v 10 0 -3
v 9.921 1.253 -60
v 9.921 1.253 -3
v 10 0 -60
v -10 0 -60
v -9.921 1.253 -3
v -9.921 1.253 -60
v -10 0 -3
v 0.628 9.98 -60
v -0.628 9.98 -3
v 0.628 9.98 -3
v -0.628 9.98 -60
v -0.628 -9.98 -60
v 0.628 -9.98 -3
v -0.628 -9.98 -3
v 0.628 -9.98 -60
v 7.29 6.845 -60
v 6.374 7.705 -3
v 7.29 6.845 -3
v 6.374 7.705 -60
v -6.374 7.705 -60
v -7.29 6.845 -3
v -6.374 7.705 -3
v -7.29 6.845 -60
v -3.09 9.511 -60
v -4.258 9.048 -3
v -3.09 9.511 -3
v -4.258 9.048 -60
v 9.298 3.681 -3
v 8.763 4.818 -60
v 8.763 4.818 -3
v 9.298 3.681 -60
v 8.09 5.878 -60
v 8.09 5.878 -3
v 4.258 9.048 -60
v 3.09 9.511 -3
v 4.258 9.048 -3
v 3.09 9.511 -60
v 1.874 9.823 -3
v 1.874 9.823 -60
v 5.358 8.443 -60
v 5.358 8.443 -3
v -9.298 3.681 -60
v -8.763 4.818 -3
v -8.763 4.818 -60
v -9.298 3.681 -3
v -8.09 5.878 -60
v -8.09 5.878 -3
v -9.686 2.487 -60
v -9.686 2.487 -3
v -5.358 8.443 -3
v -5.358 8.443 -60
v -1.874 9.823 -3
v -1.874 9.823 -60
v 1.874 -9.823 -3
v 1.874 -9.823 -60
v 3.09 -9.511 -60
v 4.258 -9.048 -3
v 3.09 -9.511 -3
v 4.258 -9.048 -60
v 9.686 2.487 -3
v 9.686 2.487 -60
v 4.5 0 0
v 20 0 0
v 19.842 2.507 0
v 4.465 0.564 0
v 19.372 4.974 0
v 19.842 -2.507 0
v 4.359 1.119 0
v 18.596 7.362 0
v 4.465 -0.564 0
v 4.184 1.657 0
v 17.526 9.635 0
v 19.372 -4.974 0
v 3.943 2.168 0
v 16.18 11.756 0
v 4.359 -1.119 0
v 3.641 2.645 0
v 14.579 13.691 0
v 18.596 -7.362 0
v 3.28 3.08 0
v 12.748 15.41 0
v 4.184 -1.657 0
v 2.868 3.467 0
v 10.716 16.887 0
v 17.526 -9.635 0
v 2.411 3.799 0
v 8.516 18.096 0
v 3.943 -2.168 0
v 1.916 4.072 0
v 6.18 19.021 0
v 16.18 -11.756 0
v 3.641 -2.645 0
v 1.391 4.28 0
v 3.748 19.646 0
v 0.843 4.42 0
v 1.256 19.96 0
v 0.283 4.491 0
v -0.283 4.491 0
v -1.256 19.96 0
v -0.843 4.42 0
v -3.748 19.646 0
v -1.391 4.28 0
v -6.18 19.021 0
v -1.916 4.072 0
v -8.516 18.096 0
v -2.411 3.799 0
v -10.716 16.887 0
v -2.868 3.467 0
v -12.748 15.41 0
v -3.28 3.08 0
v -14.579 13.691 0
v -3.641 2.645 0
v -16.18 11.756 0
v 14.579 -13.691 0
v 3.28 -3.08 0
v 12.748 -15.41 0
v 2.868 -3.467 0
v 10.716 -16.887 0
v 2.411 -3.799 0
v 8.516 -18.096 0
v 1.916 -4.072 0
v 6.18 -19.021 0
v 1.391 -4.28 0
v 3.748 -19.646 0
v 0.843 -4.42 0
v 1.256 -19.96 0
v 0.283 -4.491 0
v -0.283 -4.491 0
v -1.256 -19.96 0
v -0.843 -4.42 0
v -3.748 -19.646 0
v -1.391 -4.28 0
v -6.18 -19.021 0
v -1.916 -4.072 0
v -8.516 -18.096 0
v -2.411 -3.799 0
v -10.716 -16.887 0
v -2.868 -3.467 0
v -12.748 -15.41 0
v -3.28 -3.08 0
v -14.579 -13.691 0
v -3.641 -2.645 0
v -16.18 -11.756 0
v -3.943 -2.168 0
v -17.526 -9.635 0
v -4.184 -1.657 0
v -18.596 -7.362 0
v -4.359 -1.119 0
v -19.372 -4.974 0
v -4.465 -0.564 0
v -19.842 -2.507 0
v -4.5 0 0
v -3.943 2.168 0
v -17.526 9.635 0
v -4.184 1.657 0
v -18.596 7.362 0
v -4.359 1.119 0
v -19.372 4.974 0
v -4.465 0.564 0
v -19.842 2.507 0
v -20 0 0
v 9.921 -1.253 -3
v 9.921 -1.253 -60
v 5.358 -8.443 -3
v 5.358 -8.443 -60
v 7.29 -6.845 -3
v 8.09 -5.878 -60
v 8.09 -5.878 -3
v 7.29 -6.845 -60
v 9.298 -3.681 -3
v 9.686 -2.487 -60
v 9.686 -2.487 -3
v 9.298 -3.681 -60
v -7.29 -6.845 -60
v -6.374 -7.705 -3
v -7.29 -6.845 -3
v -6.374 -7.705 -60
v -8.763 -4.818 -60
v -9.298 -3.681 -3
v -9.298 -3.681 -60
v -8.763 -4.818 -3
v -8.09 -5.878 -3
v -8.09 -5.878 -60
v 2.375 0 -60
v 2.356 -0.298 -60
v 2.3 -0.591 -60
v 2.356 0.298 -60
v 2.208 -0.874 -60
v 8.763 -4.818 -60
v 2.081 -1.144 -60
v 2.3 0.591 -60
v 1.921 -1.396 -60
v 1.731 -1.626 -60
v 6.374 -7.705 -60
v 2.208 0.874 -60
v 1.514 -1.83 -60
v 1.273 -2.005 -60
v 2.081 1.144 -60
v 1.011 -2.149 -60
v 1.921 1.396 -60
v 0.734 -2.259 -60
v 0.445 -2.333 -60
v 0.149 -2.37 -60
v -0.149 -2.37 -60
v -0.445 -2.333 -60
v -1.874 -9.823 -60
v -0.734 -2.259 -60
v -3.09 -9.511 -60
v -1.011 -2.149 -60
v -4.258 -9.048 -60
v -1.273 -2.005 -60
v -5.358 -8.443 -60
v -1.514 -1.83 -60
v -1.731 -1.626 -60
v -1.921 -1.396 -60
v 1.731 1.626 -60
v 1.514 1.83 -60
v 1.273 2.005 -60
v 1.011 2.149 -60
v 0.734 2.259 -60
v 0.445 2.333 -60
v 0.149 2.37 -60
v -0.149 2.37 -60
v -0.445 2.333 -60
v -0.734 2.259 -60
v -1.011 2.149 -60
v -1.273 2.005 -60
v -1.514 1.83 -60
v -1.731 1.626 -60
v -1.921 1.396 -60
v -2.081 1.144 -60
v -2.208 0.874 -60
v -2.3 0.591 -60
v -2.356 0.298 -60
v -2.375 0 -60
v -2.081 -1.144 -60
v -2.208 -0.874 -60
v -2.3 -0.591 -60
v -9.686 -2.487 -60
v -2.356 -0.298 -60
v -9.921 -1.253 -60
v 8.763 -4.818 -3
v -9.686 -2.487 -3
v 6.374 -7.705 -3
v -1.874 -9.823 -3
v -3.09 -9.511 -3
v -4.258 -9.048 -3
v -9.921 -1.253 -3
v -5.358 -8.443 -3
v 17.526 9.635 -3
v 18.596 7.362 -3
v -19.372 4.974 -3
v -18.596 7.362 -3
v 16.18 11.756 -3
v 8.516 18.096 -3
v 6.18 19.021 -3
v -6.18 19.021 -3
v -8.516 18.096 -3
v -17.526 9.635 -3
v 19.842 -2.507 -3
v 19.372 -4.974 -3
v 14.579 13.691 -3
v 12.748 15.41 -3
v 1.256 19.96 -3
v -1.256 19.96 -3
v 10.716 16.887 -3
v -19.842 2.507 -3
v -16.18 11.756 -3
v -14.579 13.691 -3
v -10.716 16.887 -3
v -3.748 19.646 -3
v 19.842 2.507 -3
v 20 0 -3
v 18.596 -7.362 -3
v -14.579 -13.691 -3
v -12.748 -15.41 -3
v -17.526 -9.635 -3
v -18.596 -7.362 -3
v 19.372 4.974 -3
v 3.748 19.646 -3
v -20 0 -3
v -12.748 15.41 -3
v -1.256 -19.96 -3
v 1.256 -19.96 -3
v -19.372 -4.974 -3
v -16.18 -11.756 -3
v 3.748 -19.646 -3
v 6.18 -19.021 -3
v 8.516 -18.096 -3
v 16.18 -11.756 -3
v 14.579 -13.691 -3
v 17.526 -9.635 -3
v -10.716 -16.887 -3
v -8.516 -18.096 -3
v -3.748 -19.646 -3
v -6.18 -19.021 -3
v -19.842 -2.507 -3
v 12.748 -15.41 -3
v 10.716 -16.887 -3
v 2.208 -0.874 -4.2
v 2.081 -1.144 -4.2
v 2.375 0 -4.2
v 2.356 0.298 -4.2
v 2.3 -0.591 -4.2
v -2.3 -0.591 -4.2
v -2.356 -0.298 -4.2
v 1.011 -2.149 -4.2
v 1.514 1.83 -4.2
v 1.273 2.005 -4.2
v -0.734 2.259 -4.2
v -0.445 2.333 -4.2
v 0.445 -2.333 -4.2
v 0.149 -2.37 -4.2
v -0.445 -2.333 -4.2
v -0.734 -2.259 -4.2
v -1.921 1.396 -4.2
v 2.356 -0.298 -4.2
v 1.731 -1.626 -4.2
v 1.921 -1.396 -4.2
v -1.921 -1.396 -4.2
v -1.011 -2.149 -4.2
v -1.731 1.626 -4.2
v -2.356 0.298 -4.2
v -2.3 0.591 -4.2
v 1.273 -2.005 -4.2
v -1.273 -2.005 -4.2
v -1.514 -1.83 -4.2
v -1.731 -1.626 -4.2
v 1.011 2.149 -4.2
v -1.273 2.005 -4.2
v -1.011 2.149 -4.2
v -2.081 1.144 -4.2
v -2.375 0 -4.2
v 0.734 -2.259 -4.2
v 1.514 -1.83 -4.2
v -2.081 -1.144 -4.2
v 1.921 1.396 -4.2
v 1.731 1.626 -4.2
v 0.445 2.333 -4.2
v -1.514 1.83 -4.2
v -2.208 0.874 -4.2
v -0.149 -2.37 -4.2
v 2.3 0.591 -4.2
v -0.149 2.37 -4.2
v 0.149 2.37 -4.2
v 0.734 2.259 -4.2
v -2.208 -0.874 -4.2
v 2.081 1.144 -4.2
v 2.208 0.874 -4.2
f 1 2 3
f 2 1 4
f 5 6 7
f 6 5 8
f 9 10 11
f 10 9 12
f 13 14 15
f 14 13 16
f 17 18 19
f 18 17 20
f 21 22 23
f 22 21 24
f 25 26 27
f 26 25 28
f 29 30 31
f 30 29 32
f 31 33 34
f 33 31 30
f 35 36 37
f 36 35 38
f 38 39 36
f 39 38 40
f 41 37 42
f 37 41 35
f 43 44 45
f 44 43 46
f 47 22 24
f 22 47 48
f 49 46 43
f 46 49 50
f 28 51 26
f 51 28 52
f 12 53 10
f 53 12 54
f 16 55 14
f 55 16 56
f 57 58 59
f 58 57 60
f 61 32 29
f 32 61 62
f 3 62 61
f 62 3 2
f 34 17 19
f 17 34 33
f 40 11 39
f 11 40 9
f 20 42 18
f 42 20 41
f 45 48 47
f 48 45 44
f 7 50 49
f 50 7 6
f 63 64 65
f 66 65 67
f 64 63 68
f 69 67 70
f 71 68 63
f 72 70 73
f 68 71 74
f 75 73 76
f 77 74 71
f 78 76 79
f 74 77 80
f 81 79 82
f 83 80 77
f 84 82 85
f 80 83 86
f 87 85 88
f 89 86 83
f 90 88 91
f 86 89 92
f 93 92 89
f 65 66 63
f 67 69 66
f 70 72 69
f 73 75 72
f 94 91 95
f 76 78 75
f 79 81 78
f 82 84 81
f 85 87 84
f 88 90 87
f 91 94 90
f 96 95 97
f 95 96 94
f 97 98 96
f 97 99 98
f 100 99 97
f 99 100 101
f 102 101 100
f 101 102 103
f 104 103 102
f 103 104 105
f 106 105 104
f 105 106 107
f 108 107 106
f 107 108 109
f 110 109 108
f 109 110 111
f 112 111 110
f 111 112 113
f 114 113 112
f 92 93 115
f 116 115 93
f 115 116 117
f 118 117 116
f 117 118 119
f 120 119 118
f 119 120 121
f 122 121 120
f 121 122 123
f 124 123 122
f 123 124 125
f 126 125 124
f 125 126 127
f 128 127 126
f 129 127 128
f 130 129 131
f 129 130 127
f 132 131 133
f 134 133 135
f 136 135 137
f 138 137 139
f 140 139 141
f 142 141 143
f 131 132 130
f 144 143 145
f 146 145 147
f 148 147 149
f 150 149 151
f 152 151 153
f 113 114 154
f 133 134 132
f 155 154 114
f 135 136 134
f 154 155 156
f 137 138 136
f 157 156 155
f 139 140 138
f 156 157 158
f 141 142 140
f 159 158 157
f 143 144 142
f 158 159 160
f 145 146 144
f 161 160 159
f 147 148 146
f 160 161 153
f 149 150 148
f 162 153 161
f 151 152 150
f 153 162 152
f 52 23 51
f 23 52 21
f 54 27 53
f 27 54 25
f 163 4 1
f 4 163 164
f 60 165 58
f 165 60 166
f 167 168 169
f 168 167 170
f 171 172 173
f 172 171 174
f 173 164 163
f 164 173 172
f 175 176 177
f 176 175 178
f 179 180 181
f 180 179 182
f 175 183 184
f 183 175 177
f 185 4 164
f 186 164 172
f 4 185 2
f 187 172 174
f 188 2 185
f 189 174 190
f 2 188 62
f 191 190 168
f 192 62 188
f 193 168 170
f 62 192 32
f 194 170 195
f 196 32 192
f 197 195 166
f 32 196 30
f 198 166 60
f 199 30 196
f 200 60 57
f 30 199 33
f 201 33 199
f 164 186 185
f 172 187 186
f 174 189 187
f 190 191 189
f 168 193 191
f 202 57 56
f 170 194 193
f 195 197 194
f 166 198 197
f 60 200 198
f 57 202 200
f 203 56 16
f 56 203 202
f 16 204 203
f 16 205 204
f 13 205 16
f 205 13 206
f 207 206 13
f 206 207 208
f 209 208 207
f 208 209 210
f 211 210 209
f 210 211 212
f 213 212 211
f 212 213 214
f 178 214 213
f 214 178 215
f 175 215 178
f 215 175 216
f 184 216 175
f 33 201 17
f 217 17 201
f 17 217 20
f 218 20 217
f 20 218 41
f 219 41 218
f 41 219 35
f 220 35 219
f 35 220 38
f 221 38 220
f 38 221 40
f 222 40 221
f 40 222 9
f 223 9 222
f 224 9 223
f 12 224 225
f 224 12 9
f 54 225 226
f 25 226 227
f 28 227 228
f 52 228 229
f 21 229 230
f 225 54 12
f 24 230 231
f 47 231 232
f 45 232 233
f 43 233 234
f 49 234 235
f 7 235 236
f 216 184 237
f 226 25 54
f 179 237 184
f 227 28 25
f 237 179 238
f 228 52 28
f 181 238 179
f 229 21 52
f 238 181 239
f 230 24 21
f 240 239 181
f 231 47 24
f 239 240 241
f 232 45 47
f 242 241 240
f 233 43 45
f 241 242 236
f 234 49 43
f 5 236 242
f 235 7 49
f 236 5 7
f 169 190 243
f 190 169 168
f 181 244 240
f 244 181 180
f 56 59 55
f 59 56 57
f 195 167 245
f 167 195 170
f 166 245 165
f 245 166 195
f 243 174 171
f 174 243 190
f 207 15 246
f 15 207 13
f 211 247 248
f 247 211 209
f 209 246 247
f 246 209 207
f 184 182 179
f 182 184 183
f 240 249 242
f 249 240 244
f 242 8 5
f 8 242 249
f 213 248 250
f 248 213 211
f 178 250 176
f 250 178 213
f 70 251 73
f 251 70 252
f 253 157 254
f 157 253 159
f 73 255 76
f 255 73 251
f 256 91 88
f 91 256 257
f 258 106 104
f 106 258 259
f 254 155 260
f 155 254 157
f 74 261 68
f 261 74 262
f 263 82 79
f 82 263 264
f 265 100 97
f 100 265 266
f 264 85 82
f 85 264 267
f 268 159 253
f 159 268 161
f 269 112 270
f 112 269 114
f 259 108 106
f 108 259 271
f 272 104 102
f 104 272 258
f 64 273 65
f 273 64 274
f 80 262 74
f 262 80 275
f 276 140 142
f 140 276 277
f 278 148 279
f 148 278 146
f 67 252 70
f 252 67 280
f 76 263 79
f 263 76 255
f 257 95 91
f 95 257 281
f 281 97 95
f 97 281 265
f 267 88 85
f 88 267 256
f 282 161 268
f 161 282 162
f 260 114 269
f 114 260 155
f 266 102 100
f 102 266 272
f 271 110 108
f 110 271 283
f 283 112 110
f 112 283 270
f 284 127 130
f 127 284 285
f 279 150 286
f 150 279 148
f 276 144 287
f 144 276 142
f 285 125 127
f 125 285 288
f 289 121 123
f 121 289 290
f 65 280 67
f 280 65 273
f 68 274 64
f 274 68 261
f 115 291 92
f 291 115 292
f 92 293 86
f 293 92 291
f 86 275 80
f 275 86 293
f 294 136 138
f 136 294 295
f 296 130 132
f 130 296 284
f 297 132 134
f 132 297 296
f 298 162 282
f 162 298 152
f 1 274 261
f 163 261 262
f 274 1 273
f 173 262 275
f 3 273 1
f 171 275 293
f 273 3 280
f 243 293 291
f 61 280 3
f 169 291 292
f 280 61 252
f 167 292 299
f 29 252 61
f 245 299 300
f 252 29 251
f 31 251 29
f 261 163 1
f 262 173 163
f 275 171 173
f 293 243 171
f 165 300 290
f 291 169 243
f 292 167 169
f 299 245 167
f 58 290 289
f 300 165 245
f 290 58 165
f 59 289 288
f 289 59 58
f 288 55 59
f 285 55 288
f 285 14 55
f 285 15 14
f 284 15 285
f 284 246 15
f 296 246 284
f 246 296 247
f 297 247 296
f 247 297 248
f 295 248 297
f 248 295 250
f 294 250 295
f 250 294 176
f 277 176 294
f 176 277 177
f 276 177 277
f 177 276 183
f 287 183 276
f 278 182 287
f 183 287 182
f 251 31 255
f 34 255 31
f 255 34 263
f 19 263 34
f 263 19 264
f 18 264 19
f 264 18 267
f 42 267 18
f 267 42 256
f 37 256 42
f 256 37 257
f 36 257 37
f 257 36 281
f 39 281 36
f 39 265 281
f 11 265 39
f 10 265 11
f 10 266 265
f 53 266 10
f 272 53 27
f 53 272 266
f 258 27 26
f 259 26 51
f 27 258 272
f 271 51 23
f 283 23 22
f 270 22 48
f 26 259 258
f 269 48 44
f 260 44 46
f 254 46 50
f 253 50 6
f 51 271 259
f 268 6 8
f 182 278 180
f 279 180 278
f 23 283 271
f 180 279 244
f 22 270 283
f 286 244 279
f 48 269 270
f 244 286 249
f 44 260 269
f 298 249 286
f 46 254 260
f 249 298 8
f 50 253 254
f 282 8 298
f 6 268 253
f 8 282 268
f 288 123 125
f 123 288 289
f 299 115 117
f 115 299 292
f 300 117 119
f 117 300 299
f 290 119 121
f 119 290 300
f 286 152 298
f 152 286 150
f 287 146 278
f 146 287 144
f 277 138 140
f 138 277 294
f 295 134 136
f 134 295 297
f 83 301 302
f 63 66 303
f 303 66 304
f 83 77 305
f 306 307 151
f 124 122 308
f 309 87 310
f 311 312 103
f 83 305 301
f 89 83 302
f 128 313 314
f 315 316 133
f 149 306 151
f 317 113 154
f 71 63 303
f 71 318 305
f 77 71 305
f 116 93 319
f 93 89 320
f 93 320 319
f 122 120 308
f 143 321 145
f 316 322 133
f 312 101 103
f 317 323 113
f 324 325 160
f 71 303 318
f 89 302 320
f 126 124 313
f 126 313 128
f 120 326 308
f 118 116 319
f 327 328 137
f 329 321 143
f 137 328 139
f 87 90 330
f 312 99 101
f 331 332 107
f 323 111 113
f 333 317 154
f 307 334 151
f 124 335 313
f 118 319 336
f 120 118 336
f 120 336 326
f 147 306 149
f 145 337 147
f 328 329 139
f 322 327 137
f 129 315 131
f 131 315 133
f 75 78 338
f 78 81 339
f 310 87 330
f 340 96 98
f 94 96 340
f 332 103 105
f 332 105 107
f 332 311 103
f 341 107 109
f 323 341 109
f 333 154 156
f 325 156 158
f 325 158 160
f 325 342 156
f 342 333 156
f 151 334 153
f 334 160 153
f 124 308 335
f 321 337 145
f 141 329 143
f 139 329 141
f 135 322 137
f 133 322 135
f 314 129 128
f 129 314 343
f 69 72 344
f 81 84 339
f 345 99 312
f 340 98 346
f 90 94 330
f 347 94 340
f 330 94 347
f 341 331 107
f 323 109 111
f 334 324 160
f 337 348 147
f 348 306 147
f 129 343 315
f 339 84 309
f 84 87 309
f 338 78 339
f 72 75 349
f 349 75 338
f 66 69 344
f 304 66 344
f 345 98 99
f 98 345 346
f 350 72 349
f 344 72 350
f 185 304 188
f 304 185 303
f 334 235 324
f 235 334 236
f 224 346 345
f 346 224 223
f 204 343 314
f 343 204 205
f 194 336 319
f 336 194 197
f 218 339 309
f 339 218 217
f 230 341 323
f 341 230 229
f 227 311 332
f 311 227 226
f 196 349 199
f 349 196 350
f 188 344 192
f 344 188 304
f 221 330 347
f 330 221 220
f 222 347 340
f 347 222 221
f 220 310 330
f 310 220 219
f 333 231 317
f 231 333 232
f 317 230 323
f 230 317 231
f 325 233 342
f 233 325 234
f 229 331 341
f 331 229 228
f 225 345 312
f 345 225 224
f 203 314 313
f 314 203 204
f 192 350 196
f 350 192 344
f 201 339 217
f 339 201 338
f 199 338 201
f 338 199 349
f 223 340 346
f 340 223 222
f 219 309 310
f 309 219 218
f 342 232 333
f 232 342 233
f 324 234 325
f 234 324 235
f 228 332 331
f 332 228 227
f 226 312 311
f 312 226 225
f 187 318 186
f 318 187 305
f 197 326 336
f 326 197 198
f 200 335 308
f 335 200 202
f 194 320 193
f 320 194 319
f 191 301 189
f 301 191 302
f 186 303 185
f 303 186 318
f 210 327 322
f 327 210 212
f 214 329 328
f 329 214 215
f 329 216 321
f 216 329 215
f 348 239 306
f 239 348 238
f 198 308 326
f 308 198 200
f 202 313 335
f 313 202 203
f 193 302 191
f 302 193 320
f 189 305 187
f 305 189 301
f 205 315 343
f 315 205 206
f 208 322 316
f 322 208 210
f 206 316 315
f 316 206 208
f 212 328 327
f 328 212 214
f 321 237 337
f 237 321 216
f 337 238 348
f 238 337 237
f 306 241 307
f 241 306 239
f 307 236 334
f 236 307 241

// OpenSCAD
$fn = 50;


difference() {
	union() {
		translate(v = [0, 0, -60.0000000000]) {
			cylinder(h = 60, r = 10.0000000000);
		}
		translate(v = [0, 0, -3.0000000000]) {
			cylinder(h = 3, r = 20.0000000000);
		}
	}
	union() {
		translate(v = [0, 0, 0]) {
			rotate(a = [0, 0, 0]) {
				difference() {
					union() {
						#translate(v = [0, 0, -60.0000000000]) {
							cylinder(h = 60, r = 2.2500000000);
						}
						#translate(v = [0, 0, -4.2000000000]) {
							cylinder(h = 4.2000000000, r = 10.0000000000, r1 = 2.3750000000, r2 = 4.5000000000);
						}
						#translate(v = [0, 0, -60.0000000000]) {
							cylinder(h = 60, r = 2.3750000000);
						}
						#translate(v = [0, 0, -60.0000000000]) {
							cylinder(h = 60, r = 2.2500000000);
						}
					}
					union();
				}
			}
		}
	}
}
